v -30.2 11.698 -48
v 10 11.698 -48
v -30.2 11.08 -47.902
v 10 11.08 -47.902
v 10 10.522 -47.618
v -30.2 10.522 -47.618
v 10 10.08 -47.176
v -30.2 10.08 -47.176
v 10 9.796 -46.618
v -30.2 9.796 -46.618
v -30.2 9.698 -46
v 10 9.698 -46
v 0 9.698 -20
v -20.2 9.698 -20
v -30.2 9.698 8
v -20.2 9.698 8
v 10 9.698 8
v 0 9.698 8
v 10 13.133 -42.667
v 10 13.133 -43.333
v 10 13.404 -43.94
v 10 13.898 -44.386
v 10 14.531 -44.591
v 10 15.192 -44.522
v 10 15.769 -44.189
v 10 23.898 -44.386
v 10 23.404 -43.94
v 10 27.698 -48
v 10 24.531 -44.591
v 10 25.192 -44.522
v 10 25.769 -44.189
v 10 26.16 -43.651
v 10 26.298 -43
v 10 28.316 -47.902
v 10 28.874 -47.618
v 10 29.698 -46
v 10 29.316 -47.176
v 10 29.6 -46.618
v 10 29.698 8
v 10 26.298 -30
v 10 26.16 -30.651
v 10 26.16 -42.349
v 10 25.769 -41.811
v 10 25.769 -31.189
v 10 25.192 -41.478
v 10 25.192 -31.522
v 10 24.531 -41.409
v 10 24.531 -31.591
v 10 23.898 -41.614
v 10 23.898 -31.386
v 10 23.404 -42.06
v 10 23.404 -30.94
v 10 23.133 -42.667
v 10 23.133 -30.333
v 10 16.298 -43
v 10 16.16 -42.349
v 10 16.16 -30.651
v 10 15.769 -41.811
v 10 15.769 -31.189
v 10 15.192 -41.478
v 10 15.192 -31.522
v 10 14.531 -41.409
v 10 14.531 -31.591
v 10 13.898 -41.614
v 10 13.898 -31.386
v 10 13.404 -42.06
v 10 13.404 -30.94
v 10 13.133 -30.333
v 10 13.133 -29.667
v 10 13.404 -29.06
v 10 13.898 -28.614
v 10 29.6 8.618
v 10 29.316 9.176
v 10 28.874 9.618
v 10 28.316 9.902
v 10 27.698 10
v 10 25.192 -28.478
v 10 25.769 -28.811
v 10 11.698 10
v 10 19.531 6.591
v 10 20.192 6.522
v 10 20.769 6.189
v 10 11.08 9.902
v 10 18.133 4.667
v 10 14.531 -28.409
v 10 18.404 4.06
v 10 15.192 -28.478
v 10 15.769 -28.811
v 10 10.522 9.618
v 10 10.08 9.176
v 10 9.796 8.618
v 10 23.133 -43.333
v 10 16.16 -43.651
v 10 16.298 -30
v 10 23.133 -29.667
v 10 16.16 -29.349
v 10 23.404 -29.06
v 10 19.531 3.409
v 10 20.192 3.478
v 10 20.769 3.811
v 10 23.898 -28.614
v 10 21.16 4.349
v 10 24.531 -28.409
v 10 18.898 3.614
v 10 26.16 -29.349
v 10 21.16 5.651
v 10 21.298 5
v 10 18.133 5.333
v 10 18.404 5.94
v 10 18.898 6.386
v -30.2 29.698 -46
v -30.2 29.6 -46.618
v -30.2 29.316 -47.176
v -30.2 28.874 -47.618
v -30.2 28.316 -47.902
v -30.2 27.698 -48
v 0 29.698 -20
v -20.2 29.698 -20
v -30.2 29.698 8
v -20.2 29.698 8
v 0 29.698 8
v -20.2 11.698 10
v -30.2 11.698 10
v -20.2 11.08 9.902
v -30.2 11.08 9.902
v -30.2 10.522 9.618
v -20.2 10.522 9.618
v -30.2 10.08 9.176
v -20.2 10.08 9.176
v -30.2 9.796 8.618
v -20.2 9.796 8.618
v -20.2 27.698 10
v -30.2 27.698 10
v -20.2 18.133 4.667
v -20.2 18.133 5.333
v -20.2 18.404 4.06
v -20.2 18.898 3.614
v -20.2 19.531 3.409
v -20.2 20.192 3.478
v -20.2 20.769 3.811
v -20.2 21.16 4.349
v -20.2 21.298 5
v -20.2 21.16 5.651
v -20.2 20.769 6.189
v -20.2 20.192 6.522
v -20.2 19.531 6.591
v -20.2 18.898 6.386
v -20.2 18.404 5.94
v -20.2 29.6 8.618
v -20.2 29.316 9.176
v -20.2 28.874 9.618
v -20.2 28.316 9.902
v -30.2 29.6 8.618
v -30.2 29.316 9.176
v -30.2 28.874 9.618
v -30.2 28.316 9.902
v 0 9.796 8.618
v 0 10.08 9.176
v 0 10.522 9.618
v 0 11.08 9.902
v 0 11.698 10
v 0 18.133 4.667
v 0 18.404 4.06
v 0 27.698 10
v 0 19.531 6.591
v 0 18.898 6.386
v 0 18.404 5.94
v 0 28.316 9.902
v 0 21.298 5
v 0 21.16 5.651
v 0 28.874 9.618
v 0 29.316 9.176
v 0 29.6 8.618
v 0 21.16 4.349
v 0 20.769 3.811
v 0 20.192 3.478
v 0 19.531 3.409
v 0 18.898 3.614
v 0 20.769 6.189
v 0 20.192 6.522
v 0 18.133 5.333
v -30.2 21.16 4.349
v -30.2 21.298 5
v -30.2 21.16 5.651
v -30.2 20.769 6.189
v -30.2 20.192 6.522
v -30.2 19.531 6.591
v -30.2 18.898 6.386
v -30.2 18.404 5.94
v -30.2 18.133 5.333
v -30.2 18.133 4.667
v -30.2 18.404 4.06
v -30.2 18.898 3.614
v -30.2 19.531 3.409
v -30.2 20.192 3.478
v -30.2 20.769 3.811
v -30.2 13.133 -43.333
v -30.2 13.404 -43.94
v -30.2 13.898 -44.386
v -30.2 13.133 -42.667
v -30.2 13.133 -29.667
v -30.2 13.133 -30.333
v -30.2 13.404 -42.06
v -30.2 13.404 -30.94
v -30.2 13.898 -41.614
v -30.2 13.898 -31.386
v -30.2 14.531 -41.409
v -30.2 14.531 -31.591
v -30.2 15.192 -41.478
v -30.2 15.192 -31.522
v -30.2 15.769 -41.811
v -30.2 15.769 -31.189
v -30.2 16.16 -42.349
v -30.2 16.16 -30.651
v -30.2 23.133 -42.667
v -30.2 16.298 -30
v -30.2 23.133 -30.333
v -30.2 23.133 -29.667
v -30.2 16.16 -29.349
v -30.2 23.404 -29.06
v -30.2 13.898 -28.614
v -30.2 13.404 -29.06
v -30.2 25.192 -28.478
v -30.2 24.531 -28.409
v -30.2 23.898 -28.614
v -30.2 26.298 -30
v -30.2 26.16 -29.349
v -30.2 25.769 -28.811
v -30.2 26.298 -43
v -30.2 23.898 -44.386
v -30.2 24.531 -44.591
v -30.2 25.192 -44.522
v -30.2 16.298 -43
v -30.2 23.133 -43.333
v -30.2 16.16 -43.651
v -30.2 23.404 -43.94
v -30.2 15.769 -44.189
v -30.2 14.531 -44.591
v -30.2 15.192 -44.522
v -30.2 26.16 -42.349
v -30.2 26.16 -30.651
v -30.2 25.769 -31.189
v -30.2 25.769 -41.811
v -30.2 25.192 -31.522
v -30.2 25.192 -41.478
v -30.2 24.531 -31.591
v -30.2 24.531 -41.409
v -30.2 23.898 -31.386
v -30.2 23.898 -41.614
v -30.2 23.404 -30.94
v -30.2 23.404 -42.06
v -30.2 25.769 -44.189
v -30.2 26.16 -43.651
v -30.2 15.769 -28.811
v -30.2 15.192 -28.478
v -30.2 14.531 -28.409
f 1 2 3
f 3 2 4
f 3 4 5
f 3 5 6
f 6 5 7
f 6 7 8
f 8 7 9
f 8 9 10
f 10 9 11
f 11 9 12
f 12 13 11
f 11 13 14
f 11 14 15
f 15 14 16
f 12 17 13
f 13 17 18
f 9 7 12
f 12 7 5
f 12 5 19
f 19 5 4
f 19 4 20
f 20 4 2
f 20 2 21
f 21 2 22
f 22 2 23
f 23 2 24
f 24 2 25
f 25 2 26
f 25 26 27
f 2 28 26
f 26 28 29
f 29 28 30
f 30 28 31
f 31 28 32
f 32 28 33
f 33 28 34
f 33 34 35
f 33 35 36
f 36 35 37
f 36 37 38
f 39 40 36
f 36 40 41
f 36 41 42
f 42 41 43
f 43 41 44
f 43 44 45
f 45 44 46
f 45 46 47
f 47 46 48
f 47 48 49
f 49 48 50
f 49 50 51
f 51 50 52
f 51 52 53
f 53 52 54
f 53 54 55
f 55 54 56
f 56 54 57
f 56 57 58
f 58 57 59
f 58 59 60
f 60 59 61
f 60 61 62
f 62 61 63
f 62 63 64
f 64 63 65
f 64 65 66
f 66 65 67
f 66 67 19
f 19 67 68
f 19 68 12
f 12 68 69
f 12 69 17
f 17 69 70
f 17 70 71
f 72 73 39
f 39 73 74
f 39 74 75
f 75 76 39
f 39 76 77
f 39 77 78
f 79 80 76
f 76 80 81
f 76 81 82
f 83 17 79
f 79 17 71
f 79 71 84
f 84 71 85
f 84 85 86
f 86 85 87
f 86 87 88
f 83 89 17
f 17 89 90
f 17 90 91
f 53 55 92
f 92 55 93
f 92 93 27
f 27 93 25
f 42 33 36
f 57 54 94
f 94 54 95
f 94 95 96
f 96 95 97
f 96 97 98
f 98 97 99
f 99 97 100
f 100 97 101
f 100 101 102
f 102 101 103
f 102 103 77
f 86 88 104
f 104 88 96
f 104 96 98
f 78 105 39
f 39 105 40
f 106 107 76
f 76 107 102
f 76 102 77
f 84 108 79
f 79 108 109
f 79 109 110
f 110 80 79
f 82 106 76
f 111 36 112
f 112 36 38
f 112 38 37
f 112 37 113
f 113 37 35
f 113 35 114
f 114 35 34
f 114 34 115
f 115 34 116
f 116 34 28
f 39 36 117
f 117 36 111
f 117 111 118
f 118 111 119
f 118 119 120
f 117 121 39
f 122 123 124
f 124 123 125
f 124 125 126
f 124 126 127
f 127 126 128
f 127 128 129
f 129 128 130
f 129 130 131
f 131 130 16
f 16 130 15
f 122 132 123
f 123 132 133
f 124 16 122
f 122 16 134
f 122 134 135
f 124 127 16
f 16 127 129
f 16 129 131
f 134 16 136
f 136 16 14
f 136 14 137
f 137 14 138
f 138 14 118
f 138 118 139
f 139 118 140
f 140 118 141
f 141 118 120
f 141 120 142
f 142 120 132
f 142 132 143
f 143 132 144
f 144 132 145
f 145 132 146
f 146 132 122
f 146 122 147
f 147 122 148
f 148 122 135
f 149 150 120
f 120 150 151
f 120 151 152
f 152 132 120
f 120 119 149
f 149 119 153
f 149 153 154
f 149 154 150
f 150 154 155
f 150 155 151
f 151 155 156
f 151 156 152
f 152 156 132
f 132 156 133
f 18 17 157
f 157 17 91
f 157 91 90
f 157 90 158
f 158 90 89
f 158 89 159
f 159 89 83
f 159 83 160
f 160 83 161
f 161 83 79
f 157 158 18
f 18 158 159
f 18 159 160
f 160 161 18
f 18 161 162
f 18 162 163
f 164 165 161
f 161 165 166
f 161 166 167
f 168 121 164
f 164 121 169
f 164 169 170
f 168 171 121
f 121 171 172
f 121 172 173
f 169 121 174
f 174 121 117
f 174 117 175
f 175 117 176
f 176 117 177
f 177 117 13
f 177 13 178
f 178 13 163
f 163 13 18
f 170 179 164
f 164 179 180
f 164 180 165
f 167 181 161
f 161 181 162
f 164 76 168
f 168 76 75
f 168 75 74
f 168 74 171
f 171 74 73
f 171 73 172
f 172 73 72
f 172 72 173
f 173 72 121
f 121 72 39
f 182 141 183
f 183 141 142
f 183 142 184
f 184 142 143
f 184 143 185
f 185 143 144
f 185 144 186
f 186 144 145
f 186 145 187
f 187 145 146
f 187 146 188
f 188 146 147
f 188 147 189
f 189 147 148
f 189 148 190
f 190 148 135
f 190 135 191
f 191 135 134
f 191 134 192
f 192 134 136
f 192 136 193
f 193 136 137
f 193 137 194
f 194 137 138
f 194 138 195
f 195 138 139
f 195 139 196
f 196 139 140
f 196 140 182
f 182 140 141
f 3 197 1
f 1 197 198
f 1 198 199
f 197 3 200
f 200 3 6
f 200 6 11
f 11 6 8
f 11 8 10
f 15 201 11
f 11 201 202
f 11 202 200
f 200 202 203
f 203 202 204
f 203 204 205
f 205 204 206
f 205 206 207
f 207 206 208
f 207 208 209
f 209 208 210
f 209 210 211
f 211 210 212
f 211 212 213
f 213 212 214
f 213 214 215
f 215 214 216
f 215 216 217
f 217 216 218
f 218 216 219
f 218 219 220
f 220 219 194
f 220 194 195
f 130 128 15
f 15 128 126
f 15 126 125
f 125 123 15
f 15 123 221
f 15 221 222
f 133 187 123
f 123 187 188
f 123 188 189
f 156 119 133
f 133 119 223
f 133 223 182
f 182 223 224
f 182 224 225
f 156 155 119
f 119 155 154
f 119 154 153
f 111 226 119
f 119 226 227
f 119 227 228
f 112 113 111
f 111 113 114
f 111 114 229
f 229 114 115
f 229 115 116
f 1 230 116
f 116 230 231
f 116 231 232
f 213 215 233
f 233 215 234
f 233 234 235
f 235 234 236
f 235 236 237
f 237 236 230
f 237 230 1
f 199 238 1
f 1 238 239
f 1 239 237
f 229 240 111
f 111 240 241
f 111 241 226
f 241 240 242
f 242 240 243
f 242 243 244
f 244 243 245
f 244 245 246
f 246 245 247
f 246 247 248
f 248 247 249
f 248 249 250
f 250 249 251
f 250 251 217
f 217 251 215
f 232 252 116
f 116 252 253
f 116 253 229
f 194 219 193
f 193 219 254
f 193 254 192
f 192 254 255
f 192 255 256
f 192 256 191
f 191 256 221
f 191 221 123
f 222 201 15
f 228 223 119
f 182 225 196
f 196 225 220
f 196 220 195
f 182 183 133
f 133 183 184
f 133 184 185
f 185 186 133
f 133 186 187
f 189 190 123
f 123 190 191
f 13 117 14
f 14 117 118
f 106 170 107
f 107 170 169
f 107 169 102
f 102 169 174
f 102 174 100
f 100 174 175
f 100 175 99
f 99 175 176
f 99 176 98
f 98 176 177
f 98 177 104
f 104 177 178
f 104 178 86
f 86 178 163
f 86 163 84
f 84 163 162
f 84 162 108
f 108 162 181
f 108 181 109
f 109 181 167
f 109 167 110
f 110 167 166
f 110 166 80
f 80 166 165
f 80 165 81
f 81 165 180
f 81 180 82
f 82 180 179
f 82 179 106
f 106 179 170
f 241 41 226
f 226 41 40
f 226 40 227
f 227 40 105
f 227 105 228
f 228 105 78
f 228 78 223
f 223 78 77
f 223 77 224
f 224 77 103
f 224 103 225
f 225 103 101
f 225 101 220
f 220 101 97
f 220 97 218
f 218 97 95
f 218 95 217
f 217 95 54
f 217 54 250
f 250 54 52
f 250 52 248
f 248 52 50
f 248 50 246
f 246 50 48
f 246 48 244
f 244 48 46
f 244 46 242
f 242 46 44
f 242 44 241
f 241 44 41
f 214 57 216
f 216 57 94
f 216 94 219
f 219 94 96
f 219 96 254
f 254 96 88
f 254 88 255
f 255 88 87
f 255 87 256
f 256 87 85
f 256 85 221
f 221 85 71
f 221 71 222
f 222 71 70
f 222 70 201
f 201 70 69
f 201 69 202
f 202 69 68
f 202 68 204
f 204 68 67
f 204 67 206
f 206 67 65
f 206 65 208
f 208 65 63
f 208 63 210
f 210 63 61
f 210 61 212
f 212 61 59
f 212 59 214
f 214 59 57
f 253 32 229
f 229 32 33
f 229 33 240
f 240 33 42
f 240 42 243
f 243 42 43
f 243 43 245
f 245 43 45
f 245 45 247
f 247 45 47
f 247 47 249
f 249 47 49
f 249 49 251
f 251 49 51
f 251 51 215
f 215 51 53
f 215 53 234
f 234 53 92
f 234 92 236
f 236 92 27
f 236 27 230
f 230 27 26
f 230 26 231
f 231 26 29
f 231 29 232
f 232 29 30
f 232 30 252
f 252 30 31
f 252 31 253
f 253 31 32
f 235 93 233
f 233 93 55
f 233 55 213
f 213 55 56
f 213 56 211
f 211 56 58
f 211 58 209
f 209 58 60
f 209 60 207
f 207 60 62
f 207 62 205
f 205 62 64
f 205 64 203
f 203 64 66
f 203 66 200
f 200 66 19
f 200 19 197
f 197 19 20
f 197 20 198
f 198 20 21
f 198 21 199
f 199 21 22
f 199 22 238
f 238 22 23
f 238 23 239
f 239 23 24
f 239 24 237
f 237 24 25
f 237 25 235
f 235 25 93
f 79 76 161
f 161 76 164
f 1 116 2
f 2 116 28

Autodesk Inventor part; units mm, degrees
ref_plane "YZ Plane" through (0, 0, 0) normal (1, 0, 0) x (0, 1, 0)
ref_plane "XZ Plane" through (0, 0, 0) normal (0, 1, 0) x (-1, 0, 0)
sketch "スケッチ1" plane through (0, 0, 0) normal (1, 0, 0) x (0, 1, 0)
  line L0 (0, 0) -> (37.4755, 0)
  line L1 (37.4755, 0) -> (37.4755, -20)
  line L2 (37.4755, -20) -> (0, -20)
  line L3 (0, -20) -> (0, 0)
  line L4 (9.6981, 10) -> (29.6981, 10)
  line L5 (29.6981, 10) -> (29.6981, -48)
  line L6 (29.6981, -48) -> (9.6981, -48)
  line L7 (9.6981, -48) -> (9.6981, 10)
  circle A0 centre (24.6981, -30) radius 1.6
  circle A1 centre (14.6981, -30) radius 1.6
  circle A2 centre (24.6981, -43) radius 1.6
  circle A3 centre (14.6981, -43) radius 1.6
  circle A4 centre (19.6981, 5) radius 1.6
  point P0 (29.6981, -20)
  point P1 (9.6981, -20)
  dimension "d0" = 20
  dimension "d1" = 10
  dimension "d2" = 3.2
  dimension "d3" = 3.2
  dimension "d4" = 3.2
  dimension "d5" = 3.2
  dimension "d6" = 10
  dimension "d7" = 10
  dimension "d8" = 13
  dimension "d9" = 0
  dimension "d10" = 0
  dimension "d11" = 13
  dimension "d12" = 5
  dimension "d13" = 10
  dimension "d14" = 5
  dimension "d15" = 5
  dimension "d16" = 3.2
  dimension "d17" = 5
  dimension "d18" = 10
extrude "押し出し1" add sketch "スケッチ1" along normal blind 10 contours L7 L4 L5 L0 | L0 L5 L2 L7 | L2 L5 L6 L7
extrude "押し出し2" add sketch "スケッチ1" against normal blind 10.1 contours L2 L5 L6 L7
ref_plane "作業平面1" through (-10.1, 0, 0) normal (-1, 0, 0) x (0, 0, 1)
mirror "ミラー1" about plane through (-10.1, 0, 0) normal (-1, 0, 0)
fillet "フィレット1" radius 2 6 edges at (5, 29.6981, 10) (5, 9.6981, 10) (-25.2, 29.6981, 10) (-25.2, 9.6981, 10) (-10.1, 29.6981, -48) (-10.1, 9.6981, -48)
equation "\"d11\" = d8"
properties part number "dribl-v1-3DP-cc-f-2" material "ABS プラスチック"
